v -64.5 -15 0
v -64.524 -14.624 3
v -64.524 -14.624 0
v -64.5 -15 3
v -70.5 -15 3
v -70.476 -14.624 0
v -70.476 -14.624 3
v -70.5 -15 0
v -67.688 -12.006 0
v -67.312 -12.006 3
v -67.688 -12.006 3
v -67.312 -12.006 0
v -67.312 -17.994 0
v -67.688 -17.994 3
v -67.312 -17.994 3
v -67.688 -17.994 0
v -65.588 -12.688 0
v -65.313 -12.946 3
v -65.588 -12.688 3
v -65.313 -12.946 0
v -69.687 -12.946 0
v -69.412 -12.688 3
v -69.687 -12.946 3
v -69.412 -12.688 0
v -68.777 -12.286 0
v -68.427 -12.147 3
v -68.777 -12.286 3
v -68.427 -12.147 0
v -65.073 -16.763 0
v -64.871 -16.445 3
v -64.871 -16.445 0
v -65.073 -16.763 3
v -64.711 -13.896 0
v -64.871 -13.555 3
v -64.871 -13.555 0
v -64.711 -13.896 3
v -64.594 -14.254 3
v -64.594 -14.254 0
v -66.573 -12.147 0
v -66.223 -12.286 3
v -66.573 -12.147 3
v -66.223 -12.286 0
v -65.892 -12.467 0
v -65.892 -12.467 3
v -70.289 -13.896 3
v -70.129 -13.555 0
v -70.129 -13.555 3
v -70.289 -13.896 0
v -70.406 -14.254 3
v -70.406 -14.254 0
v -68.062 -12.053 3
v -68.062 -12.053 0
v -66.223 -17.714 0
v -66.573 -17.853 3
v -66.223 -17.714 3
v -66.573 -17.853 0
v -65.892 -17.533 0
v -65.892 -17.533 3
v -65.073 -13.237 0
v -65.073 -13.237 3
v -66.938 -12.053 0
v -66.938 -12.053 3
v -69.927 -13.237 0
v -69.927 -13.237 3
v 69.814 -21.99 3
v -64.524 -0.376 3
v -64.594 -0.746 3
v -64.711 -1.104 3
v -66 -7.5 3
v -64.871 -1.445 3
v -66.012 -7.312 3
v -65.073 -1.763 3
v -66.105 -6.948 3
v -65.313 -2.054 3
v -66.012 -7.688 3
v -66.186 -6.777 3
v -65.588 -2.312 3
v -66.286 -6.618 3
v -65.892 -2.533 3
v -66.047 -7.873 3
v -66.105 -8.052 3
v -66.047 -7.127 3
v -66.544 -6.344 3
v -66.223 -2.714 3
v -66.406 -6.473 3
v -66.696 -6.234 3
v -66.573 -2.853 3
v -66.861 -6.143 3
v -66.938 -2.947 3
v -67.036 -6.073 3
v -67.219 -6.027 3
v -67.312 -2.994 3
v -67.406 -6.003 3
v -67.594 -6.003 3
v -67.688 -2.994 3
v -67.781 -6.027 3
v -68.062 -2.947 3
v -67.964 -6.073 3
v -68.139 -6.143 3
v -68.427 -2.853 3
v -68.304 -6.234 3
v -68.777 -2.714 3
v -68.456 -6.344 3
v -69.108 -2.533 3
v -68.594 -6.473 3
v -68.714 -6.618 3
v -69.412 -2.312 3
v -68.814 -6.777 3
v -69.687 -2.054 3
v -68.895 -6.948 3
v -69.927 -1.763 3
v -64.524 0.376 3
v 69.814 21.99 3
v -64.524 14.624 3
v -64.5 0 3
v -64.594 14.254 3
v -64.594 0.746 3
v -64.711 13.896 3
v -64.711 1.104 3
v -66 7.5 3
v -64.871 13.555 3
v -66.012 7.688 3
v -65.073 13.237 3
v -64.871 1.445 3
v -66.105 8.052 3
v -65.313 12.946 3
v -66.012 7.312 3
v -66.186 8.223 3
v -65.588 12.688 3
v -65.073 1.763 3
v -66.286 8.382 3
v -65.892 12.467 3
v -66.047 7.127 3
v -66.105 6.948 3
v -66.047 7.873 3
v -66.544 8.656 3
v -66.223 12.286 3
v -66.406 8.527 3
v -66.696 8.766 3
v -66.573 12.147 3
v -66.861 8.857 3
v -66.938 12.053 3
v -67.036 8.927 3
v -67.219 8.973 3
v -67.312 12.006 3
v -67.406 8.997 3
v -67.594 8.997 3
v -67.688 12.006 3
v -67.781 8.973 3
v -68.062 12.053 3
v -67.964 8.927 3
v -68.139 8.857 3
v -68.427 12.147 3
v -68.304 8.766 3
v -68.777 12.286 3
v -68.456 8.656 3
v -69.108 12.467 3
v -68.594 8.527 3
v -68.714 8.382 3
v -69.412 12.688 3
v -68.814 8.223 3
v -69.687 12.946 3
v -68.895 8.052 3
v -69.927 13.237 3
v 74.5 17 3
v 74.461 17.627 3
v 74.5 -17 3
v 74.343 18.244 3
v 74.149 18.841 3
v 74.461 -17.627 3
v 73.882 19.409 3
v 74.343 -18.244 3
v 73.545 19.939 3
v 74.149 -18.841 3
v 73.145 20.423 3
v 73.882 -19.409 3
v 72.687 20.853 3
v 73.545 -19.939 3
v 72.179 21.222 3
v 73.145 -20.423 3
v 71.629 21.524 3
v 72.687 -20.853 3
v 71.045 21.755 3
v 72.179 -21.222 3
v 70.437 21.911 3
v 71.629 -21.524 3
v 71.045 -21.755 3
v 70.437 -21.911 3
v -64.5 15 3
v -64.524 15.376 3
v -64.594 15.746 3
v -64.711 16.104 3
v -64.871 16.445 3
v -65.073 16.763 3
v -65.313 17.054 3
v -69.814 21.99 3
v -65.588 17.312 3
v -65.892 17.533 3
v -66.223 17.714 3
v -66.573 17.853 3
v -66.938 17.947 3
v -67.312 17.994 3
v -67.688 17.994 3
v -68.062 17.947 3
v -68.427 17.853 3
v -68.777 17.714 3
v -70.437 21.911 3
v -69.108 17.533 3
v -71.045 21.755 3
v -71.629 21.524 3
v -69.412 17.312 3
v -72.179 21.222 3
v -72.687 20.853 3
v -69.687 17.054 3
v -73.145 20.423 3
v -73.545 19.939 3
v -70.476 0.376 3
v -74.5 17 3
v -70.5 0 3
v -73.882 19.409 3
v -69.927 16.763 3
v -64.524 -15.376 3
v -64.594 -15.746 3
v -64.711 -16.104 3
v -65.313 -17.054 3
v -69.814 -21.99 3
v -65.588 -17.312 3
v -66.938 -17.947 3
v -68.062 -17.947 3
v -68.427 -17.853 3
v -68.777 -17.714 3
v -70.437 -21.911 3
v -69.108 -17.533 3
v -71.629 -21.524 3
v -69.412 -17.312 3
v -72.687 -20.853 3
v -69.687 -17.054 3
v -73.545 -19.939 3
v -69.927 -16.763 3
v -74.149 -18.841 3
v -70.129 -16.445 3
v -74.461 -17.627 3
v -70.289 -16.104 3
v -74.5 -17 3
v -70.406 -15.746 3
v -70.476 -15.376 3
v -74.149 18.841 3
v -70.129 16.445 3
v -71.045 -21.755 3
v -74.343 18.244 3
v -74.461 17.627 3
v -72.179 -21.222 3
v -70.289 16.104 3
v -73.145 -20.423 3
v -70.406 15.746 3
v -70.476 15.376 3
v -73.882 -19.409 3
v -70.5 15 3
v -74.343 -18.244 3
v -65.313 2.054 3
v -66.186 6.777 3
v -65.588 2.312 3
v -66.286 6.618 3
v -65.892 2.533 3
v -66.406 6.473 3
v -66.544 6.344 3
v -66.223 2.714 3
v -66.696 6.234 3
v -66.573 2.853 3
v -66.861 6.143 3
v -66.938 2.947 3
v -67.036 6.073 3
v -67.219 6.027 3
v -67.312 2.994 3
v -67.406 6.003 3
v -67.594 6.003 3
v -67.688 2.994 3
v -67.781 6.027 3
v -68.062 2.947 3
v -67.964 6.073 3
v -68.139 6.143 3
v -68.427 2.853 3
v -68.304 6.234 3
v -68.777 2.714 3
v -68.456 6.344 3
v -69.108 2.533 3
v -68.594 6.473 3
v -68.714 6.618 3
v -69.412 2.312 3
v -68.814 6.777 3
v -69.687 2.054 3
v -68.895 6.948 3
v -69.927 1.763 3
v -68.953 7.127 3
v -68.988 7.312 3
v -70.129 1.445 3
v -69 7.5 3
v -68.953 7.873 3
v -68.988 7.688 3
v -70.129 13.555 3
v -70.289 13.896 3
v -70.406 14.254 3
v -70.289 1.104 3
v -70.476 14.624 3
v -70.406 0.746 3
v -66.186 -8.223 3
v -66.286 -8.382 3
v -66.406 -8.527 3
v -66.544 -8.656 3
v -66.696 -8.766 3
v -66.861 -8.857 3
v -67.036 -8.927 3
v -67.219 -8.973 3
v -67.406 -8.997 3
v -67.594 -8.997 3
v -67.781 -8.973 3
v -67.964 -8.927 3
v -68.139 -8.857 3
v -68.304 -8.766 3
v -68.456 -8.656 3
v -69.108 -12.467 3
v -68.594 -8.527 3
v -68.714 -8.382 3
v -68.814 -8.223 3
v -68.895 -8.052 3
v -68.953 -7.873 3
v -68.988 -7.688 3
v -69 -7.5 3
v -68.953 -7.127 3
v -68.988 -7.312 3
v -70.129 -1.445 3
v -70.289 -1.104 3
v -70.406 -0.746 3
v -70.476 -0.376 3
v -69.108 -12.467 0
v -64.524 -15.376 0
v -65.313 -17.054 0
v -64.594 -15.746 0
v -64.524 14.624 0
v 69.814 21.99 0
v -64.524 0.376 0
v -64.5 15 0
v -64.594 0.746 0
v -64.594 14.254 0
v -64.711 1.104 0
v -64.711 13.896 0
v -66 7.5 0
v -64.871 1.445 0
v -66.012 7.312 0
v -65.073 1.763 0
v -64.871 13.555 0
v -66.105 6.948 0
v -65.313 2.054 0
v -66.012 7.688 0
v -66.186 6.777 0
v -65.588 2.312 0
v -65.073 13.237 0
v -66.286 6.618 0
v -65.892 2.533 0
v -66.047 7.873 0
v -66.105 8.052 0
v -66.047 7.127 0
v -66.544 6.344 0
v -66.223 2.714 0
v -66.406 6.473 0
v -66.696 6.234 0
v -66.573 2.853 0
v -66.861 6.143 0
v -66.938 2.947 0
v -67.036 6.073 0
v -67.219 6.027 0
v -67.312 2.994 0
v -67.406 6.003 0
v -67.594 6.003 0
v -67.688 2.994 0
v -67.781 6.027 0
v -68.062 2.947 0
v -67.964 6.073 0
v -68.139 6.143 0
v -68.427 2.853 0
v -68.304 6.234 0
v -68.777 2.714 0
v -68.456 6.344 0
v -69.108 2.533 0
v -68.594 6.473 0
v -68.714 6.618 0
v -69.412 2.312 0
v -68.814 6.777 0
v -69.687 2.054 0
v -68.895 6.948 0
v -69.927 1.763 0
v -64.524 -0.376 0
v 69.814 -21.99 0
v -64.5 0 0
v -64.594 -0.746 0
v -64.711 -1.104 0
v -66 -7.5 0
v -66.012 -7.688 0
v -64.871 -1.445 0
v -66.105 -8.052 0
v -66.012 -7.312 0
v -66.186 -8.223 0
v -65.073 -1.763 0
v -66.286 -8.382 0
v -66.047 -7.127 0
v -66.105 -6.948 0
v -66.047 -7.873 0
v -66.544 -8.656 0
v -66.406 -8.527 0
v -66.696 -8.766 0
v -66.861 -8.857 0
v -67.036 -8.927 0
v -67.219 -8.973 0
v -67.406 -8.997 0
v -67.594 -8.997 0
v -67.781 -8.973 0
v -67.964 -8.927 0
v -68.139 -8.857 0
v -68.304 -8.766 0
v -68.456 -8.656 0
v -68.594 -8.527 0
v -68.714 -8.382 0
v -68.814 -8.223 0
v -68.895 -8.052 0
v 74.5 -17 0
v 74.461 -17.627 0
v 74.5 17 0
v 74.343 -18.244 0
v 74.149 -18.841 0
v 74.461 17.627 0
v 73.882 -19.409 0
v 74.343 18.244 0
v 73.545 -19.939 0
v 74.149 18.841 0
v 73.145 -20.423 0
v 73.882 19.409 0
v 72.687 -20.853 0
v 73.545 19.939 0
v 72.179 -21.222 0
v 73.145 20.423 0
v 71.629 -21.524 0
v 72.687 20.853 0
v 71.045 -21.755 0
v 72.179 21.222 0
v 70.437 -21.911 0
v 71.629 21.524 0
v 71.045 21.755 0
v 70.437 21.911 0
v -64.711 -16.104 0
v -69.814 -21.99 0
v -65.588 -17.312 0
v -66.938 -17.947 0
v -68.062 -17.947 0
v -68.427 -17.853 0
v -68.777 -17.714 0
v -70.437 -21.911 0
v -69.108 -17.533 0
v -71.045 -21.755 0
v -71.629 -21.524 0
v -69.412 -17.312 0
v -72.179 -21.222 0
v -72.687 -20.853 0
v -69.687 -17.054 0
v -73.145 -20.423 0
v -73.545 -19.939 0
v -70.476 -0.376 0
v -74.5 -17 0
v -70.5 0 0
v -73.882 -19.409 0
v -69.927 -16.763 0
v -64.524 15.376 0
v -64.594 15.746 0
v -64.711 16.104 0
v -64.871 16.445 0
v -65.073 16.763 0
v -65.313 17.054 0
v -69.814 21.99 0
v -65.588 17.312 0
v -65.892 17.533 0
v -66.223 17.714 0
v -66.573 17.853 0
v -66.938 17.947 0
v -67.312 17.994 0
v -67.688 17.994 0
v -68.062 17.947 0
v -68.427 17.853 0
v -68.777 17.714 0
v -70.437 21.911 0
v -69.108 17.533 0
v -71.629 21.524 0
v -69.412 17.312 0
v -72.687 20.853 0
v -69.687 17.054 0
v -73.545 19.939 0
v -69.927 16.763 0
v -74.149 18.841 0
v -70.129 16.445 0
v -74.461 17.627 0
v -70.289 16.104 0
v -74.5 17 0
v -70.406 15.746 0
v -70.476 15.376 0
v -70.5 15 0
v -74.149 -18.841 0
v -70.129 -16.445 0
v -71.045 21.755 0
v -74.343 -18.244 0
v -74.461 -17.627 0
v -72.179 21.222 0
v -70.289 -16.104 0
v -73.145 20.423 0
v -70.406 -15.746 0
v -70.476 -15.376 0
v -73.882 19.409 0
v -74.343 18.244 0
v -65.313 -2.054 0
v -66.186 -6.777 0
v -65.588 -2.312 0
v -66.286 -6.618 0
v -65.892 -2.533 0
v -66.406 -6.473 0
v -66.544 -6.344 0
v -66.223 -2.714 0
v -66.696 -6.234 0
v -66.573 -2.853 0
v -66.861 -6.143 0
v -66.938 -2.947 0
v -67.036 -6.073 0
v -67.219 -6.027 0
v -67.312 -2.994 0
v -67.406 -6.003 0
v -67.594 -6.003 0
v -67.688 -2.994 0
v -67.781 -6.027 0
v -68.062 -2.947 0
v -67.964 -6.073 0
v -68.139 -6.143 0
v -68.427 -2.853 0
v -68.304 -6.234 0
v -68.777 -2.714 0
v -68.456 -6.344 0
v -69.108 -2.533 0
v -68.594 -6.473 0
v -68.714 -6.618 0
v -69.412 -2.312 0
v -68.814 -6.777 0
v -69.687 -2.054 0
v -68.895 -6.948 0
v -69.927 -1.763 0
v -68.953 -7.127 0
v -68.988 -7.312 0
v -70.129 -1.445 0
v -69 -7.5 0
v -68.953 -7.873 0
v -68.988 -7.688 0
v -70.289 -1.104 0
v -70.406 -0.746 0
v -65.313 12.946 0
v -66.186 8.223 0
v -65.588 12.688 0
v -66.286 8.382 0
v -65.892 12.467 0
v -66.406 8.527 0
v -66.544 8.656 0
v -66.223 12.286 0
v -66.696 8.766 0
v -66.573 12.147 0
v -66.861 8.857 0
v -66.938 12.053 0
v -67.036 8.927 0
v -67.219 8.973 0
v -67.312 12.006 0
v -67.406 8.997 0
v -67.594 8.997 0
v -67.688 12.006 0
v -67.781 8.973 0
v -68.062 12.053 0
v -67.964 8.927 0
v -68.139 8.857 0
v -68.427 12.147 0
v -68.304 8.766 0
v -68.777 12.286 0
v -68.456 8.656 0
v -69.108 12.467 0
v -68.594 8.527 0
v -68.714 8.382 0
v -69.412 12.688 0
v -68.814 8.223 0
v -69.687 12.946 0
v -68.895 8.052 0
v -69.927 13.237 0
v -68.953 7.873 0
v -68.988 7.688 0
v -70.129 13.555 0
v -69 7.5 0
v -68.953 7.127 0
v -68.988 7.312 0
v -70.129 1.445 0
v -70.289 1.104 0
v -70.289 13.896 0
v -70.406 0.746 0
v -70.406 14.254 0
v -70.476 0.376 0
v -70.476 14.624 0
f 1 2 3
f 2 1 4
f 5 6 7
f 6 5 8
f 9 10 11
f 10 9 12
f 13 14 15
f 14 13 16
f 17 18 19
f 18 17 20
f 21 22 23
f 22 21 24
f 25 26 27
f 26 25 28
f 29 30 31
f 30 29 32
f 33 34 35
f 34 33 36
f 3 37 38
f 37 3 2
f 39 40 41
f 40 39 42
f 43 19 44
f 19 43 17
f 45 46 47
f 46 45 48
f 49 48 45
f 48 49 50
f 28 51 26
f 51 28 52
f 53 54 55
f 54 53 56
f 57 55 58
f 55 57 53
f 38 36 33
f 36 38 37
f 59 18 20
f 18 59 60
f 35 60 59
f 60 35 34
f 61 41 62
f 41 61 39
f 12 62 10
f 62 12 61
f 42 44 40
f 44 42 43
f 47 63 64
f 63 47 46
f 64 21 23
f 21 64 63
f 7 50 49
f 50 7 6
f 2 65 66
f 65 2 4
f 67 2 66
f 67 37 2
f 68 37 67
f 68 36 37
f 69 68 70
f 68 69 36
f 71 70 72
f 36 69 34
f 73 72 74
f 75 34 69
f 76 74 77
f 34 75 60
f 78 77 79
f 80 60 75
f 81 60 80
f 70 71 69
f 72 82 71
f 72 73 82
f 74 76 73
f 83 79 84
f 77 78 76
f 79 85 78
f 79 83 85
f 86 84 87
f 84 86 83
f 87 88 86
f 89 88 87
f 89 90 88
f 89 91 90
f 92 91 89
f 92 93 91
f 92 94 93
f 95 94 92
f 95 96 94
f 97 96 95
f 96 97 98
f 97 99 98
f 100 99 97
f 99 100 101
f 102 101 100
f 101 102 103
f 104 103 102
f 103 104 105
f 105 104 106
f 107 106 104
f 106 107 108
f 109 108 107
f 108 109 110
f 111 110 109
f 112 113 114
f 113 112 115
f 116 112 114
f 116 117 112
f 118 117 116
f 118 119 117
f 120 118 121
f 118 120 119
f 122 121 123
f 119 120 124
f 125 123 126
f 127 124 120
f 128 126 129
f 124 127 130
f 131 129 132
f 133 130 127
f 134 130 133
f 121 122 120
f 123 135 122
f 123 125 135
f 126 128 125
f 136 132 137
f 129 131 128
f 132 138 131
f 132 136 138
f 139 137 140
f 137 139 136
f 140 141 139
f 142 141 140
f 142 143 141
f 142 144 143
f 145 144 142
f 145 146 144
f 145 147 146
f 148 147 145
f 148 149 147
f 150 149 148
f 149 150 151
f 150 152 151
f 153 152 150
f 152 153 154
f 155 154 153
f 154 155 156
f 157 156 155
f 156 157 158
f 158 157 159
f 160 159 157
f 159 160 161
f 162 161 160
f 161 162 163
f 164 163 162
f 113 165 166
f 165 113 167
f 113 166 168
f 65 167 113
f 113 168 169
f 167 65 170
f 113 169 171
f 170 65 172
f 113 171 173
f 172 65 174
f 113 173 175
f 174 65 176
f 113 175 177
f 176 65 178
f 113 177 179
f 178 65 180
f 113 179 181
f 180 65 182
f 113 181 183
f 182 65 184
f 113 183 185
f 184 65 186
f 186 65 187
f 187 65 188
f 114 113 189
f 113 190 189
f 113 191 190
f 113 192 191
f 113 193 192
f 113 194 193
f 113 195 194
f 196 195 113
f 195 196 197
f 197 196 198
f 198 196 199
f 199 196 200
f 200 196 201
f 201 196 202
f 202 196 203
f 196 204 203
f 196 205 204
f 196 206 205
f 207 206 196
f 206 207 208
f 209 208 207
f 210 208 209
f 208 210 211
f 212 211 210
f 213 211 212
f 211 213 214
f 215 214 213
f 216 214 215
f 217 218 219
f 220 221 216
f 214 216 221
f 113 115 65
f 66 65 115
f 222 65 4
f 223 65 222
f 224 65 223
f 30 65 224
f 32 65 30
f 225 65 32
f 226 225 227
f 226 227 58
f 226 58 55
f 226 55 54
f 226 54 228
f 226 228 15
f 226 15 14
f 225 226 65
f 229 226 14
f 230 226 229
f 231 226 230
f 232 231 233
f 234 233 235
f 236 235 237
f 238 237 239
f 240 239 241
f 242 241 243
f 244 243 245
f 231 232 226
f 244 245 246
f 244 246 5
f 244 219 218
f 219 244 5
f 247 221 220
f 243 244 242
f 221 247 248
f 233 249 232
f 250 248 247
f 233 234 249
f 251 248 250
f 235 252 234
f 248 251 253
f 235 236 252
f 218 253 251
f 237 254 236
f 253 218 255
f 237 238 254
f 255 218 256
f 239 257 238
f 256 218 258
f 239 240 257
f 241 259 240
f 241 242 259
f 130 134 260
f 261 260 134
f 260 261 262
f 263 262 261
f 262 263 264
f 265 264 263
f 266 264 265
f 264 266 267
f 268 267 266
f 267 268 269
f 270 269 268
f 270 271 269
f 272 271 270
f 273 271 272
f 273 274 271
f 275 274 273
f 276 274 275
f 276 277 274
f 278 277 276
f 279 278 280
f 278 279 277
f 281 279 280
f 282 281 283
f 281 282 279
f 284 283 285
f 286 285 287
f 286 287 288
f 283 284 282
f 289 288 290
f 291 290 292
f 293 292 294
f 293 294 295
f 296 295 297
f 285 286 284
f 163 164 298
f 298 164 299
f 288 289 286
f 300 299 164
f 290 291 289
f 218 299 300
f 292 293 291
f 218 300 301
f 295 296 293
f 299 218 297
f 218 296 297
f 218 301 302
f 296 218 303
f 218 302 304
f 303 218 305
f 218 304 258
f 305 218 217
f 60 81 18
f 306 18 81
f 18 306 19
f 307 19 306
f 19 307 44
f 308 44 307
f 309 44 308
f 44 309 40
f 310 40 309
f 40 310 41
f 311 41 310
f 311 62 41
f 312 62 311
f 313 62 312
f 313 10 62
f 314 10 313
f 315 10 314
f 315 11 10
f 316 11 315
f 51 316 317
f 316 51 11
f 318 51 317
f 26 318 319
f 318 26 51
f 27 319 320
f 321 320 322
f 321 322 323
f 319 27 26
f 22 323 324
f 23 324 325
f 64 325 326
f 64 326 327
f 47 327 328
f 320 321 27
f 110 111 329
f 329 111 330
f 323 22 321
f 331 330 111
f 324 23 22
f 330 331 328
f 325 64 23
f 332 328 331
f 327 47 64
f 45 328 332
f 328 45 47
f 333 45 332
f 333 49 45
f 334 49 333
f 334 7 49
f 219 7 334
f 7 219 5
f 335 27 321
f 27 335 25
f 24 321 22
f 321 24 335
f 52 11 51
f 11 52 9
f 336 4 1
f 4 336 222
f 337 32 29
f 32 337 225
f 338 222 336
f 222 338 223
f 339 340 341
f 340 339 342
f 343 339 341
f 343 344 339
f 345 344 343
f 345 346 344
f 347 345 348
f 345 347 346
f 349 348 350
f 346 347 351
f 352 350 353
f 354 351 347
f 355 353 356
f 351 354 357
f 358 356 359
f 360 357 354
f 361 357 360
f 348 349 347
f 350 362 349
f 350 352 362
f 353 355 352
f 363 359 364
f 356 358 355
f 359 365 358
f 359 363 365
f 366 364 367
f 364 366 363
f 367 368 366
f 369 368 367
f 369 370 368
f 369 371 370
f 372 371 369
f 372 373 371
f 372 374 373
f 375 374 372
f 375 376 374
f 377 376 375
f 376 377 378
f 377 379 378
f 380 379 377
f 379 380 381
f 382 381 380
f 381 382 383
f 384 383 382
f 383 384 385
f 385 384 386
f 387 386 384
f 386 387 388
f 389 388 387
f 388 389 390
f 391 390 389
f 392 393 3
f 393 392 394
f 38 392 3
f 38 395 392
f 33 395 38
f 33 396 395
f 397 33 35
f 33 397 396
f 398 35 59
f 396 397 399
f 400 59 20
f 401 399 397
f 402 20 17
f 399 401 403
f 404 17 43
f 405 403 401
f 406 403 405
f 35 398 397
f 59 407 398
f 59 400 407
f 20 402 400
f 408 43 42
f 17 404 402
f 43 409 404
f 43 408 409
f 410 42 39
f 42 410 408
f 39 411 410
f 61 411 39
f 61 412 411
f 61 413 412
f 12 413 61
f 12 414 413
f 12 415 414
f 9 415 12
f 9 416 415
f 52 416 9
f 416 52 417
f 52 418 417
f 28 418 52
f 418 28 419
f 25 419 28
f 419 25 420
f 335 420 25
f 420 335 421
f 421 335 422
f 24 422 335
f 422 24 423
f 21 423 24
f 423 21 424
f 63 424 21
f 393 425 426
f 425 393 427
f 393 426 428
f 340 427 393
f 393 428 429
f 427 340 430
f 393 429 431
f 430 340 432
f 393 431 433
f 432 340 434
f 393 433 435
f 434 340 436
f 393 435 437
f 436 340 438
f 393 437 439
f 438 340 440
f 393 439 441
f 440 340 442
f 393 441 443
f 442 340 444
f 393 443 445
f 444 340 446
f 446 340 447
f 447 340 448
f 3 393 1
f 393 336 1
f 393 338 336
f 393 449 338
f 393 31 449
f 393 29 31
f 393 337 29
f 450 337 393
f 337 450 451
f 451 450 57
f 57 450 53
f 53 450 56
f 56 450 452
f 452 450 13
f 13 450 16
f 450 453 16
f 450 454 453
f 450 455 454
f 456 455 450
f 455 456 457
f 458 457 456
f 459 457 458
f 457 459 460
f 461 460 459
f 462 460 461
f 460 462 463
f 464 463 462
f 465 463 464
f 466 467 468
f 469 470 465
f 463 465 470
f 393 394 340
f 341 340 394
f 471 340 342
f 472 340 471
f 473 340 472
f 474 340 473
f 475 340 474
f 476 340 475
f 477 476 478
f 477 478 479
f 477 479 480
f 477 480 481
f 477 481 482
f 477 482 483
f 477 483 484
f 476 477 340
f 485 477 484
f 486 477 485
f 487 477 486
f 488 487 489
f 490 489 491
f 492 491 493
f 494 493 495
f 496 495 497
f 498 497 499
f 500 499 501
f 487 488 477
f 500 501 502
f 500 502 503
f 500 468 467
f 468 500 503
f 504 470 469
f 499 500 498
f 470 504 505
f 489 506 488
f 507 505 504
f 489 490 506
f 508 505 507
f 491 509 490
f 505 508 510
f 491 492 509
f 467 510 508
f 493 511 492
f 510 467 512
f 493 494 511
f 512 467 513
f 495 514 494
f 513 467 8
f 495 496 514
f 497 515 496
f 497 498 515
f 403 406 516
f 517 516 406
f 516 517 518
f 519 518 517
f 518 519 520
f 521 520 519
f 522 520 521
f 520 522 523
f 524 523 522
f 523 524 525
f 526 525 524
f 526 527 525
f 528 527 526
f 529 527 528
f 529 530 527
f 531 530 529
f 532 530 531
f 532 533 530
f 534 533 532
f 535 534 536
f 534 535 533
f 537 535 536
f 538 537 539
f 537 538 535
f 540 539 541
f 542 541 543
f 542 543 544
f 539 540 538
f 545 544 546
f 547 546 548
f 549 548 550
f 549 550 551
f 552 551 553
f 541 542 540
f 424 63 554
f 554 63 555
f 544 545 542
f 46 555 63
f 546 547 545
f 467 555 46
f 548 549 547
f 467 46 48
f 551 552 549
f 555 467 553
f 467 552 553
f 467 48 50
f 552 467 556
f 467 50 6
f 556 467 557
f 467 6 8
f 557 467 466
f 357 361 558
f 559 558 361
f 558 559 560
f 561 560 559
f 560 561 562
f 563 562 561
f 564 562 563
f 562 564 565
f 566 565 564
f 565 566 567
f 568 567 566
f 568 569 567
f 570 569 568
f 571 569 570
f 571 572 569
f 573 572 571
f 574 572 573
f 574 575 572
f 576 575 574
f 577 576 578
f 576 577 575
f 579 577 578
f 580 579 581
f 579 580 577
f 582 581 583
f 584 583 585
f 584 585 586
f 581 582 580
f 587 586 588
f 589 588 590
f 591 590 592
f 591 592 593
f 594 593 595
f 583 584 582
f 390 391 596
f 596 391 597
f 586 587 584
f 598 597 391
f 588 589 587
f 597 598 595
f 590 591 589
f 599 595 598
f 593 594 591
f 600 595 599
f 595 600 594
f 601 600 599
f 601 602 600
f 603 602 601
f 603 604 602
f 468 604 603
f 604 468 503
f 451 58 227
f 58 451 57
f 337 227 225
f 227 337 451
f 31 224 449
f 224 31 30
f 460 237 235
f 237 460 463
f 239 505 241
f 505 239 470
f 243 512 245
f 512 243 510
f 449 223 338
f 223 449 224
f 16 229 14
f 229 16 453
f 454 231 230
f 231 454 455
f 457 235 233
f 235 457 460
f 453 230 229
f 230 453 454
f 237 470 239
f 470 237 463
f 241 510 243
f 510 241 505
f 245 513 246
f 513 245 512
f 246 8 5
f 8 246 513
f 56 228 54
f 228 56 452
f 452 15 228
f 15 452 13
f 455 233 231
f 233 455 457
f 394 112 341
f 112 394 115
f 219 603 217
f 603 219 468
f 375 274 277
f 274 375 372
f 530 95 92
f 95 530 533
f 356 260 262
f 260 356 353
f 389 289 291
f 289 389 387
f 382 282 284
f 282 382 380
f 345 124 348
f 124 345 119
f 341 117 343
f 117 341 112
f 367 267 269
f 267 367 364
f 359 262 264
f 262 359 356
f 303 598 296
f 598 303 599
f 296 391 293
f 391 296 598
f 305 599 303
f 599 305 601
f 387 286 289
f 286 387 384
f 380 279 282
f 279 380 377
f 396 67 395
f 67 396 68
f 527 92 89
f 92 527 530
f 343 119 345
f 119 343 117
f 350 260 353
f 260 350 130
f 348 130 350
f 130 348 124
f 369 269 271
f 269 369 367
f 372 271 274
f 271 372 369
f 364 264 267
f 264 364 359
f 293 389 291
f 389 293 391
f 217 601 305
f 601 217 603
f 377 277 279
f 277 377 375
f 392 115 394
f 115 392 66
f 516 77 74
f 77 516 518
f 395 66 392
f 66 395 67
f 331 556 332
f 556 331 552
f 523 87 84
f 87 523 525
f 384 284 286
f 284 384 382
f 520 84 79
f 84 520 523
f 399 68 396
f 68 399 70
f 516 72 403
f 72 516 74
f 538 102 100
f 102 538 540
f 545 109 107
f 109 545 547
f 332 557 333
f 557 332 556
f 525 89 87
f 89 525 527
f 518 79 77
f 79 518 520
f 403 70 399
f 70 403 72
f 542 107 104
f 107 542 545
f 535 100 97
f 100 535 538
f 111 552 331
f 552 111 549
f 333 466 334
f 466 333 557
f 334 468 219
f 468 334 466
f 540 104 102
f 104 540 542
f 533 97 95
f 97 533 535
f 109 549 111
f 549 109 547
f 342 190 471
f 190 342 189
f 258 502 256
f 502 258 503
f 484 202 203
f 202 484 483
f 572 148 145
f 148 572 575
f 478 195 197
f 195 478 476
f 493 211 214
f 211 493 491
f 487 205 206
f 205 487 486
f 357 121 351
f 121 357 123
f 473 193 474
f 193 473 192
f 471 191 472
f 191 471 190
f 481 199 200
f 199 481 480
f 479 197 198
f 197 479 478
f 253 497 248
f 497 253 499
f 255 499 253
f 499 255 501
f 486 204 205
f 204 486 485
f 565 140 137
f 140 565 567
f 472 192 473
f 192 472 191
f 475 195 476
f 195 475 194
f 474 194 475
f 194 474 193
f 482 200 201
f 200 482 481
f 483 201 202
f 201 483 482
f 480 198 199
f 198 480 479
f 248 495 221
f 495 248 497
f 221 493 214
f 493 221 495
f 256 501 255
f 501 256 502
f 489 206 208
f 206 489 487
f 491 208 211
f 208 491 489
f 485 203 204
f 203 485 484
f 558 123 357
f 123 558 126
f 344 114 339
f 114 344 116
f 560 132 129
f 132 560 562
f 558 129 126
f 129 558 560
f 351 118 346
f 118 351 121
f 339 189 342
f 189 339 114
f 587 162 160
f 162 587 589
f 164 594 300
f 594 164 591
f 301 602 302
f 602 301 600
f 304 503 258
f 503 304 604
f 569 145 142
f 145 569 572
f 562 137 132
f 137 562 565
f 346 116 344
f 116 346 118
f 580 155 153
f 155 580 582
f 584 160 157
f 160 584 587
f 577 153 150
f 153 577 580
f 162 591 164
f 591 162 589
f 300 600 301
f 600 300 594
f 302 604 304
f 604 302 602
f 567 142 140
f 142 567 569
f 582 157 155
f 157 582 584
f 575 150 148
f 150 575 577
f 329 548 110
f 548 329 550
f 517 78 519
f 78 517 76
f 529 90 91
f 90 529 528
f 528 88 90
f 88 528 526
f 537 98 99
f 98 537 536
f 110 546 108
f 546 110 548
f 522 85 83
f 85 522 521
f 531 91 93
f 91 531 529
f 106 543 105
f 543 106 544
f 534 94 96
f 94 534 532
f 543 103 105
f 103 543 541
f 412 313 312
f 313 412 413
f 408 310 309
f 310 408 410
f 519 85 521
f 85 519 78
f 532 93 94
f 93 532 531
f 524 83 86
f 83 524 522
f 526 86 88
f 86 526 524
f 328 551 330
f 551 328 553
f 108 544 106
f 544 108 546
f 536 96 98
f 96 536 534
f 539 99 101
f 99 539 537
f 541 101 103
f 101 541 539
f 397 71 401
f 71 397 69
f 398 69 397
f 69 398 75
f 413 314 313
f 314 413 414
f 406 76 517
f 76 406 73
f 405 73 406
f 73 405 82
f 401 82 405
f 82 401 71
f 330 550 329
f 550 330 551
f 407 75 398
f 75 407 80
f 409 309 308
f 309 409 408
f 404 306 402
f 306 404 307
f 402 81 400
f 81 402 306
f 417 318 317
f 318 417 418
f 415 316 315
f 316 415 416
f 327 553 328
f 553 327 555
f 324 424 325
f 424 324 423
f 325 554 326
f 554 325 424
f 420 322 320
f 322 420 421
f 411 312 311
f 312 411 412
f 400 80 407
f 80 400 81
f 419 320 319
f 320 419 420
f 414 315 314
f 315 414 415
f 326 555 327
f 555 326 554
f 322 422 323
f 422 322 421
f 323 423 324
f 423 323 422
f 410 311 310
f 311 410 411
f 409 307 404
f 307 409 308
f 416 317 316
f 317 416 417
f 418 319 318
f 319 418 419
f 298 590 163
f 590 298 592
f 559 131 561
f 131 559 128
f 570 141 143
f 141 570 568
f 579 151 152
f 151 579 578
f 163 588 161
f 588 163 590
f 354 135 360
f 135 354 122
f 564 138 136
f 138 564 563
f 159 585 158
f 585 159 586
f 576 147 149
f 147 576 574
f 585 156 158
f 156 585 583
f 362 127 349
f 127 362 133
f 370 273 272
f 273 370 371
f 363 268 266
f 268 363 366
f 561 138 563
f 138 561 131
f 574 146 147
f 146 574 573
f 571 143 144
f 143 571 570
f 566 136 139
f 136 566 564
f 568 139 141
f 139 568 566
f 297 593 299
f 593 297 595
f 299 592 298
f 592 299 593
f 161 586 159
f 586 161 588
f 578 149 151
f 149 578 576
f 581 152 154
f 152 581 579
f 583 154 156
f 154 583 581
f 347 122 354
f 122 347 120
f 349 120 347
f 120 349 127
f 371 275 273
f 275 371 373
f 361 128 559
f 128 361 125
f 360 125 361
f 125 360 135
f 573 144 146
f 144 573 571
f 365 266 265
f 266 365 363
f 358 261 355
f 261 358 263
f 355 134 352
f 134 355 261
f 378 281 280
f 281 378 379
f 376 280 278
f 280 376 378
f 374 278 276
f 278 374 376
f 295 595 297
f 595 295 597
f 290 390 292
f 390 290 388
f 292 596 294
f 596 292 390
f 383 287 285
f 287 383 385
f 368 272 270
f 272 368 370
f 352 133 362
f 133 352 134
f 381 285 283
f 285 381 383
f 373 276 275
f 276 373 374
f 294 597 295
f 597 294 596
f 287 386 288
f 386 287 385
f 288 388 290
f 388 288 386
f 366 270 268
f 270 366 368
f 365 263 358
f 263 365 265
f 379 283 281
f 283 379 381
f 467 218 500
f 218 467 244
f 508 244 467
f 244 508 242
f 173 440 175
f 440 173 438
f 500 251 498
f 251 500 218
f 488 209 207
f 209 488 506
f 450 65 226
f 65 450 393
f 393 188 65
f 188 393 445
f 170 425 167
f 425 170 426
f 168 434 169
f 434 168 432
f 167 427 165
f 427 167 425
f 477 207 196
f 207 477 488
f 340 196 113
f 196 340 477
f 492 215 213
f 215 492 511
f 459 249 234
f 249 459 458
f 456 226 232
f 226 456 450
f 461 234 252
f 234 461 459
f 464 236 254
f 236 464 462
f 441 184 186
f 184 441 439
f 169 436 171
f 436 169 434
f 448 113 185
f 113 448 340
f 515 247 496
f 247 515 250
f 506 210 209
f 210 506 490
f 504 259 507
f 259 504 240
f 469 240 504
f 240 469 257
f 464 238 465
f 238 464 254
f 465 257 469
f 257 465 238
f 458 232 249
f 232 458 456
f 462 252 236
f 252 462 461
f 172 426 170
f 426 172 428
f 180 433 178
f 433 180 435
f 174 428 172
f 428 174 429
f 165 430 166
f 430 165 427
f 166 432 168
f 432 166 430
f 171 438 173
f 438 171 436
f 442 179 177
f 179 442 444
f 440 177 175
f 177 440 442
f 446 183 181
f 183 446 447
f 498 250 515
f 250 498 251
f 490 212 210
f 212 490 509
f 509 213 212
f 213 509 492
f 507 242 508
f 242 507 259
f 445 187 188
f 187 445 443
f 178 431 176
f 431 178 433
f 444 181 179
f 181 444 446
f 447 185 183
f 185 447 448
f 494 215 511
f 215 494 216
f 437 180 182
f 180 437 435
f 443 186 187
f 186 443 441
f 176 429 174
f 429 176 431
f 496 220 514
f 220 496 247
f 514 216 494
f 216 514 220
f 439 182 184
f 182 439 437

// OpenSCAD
$fn = 50;


difference() {
	union() {
		hull() {
			translate(v = [-69.5000000000, 17.0000000000, 0]) {
				cylinder(h = 3, r = 5);
			}
			translate(v = [69.5000000000, 17.0000000000, 0]) {
				cylinder(h = 3, r = 5);
			}
			translate(v = [-69.5000000000, -17.0000000000, 0]) {
				cylinder(h = 3, r = 5);
			}
			translate(v = [69.5000000000, -17.0000000000, 0]) {
				cylinder(h = 3, r = 5);
			}
		}
	}
	union() {
		translate(v = [-67.5000000000, -15.0000000000, 0]) {
			cylinder(h = 3, r = 3.0000000000);
		}
		translate(v = [-67.5000000000, 0.0000000000, 0]) {
			cylinder(h = 3, r = 3.0000000000);
		}
		translate(v = [-67.5000000000, 15.0000000000, 0]) {
			cylinder(h = 3, r = 3.0000000000);
		}
		translate(v = [-67.5000000000, -15.0000000000, 0]) {
			cylinder(h = 3, r = 1.5000000000);
		}
		translate(v = [-67.5000000000, -7.5000000000, 0]) {
			cylinder(h = 3, r = 1.5000000000);
		}
		translate(v = [-67.5000000000, 0.0000000000, 0]) {
			cylinder(h = 3, r = 1.5000000000);
		}
		translate(v = [-67.5000000000, 7.5000000000, 0]) {
			cylinder(h = 3, r = 1.5000000000);
		}
		translate(v = [-67.5000000000, 15.0000000000, 0]) {
			cylinder(h = 3, r = 1.5000000000);
		}
		translate(v = [-67.5000000000, -15.0000000000, 0]) {
			cylinder(h = 3, r = 1.5000000000);
		}
		translate(v = [-67.5000000000, -7.5000000000, 0]) {
			cylinder(h = 3, r = 1.5000000000);
		}
		translate(v = [-67.5000000000, 0.0000000000, 0]) {
			cylinder(h = 3, r = 1.5000000000);
		}
		translate(v = [-67.5000000000, 7.5000000000, 0]) {
			cylinder(h = 3, r = 1.5000000000);
		}
		translate(v = [-67.5000000000, 15.0000000000, 0]) {
			cylinder(h = 3, r = 1.5000000000);
		}
		translate(v = [-67.5000000000, -15.0000000000, 0]) {
			cylinder(h = 3, r = 1.5000000000);
		}
		translate(v = [-67.5000000000, -7.5000000000, 0]) {
			cylinder(h = 3, r = 1.5000000000);
		}
		translate(v = [-67.5000000000, 0.0000000000, 0]) {
			cylinder(h = 3, r = 1.5000000000);
		}
		translate(v = [-67.5000000000, 7.5000000000, 0]) {
			cylinder(h = 3, r = 1.5000000000);
		}
		translate(v = [-67.5000000000, 15.0000000000, 0]) {
			cylinder(h = 3, r = 1.5000000000);
		}
	}
}
